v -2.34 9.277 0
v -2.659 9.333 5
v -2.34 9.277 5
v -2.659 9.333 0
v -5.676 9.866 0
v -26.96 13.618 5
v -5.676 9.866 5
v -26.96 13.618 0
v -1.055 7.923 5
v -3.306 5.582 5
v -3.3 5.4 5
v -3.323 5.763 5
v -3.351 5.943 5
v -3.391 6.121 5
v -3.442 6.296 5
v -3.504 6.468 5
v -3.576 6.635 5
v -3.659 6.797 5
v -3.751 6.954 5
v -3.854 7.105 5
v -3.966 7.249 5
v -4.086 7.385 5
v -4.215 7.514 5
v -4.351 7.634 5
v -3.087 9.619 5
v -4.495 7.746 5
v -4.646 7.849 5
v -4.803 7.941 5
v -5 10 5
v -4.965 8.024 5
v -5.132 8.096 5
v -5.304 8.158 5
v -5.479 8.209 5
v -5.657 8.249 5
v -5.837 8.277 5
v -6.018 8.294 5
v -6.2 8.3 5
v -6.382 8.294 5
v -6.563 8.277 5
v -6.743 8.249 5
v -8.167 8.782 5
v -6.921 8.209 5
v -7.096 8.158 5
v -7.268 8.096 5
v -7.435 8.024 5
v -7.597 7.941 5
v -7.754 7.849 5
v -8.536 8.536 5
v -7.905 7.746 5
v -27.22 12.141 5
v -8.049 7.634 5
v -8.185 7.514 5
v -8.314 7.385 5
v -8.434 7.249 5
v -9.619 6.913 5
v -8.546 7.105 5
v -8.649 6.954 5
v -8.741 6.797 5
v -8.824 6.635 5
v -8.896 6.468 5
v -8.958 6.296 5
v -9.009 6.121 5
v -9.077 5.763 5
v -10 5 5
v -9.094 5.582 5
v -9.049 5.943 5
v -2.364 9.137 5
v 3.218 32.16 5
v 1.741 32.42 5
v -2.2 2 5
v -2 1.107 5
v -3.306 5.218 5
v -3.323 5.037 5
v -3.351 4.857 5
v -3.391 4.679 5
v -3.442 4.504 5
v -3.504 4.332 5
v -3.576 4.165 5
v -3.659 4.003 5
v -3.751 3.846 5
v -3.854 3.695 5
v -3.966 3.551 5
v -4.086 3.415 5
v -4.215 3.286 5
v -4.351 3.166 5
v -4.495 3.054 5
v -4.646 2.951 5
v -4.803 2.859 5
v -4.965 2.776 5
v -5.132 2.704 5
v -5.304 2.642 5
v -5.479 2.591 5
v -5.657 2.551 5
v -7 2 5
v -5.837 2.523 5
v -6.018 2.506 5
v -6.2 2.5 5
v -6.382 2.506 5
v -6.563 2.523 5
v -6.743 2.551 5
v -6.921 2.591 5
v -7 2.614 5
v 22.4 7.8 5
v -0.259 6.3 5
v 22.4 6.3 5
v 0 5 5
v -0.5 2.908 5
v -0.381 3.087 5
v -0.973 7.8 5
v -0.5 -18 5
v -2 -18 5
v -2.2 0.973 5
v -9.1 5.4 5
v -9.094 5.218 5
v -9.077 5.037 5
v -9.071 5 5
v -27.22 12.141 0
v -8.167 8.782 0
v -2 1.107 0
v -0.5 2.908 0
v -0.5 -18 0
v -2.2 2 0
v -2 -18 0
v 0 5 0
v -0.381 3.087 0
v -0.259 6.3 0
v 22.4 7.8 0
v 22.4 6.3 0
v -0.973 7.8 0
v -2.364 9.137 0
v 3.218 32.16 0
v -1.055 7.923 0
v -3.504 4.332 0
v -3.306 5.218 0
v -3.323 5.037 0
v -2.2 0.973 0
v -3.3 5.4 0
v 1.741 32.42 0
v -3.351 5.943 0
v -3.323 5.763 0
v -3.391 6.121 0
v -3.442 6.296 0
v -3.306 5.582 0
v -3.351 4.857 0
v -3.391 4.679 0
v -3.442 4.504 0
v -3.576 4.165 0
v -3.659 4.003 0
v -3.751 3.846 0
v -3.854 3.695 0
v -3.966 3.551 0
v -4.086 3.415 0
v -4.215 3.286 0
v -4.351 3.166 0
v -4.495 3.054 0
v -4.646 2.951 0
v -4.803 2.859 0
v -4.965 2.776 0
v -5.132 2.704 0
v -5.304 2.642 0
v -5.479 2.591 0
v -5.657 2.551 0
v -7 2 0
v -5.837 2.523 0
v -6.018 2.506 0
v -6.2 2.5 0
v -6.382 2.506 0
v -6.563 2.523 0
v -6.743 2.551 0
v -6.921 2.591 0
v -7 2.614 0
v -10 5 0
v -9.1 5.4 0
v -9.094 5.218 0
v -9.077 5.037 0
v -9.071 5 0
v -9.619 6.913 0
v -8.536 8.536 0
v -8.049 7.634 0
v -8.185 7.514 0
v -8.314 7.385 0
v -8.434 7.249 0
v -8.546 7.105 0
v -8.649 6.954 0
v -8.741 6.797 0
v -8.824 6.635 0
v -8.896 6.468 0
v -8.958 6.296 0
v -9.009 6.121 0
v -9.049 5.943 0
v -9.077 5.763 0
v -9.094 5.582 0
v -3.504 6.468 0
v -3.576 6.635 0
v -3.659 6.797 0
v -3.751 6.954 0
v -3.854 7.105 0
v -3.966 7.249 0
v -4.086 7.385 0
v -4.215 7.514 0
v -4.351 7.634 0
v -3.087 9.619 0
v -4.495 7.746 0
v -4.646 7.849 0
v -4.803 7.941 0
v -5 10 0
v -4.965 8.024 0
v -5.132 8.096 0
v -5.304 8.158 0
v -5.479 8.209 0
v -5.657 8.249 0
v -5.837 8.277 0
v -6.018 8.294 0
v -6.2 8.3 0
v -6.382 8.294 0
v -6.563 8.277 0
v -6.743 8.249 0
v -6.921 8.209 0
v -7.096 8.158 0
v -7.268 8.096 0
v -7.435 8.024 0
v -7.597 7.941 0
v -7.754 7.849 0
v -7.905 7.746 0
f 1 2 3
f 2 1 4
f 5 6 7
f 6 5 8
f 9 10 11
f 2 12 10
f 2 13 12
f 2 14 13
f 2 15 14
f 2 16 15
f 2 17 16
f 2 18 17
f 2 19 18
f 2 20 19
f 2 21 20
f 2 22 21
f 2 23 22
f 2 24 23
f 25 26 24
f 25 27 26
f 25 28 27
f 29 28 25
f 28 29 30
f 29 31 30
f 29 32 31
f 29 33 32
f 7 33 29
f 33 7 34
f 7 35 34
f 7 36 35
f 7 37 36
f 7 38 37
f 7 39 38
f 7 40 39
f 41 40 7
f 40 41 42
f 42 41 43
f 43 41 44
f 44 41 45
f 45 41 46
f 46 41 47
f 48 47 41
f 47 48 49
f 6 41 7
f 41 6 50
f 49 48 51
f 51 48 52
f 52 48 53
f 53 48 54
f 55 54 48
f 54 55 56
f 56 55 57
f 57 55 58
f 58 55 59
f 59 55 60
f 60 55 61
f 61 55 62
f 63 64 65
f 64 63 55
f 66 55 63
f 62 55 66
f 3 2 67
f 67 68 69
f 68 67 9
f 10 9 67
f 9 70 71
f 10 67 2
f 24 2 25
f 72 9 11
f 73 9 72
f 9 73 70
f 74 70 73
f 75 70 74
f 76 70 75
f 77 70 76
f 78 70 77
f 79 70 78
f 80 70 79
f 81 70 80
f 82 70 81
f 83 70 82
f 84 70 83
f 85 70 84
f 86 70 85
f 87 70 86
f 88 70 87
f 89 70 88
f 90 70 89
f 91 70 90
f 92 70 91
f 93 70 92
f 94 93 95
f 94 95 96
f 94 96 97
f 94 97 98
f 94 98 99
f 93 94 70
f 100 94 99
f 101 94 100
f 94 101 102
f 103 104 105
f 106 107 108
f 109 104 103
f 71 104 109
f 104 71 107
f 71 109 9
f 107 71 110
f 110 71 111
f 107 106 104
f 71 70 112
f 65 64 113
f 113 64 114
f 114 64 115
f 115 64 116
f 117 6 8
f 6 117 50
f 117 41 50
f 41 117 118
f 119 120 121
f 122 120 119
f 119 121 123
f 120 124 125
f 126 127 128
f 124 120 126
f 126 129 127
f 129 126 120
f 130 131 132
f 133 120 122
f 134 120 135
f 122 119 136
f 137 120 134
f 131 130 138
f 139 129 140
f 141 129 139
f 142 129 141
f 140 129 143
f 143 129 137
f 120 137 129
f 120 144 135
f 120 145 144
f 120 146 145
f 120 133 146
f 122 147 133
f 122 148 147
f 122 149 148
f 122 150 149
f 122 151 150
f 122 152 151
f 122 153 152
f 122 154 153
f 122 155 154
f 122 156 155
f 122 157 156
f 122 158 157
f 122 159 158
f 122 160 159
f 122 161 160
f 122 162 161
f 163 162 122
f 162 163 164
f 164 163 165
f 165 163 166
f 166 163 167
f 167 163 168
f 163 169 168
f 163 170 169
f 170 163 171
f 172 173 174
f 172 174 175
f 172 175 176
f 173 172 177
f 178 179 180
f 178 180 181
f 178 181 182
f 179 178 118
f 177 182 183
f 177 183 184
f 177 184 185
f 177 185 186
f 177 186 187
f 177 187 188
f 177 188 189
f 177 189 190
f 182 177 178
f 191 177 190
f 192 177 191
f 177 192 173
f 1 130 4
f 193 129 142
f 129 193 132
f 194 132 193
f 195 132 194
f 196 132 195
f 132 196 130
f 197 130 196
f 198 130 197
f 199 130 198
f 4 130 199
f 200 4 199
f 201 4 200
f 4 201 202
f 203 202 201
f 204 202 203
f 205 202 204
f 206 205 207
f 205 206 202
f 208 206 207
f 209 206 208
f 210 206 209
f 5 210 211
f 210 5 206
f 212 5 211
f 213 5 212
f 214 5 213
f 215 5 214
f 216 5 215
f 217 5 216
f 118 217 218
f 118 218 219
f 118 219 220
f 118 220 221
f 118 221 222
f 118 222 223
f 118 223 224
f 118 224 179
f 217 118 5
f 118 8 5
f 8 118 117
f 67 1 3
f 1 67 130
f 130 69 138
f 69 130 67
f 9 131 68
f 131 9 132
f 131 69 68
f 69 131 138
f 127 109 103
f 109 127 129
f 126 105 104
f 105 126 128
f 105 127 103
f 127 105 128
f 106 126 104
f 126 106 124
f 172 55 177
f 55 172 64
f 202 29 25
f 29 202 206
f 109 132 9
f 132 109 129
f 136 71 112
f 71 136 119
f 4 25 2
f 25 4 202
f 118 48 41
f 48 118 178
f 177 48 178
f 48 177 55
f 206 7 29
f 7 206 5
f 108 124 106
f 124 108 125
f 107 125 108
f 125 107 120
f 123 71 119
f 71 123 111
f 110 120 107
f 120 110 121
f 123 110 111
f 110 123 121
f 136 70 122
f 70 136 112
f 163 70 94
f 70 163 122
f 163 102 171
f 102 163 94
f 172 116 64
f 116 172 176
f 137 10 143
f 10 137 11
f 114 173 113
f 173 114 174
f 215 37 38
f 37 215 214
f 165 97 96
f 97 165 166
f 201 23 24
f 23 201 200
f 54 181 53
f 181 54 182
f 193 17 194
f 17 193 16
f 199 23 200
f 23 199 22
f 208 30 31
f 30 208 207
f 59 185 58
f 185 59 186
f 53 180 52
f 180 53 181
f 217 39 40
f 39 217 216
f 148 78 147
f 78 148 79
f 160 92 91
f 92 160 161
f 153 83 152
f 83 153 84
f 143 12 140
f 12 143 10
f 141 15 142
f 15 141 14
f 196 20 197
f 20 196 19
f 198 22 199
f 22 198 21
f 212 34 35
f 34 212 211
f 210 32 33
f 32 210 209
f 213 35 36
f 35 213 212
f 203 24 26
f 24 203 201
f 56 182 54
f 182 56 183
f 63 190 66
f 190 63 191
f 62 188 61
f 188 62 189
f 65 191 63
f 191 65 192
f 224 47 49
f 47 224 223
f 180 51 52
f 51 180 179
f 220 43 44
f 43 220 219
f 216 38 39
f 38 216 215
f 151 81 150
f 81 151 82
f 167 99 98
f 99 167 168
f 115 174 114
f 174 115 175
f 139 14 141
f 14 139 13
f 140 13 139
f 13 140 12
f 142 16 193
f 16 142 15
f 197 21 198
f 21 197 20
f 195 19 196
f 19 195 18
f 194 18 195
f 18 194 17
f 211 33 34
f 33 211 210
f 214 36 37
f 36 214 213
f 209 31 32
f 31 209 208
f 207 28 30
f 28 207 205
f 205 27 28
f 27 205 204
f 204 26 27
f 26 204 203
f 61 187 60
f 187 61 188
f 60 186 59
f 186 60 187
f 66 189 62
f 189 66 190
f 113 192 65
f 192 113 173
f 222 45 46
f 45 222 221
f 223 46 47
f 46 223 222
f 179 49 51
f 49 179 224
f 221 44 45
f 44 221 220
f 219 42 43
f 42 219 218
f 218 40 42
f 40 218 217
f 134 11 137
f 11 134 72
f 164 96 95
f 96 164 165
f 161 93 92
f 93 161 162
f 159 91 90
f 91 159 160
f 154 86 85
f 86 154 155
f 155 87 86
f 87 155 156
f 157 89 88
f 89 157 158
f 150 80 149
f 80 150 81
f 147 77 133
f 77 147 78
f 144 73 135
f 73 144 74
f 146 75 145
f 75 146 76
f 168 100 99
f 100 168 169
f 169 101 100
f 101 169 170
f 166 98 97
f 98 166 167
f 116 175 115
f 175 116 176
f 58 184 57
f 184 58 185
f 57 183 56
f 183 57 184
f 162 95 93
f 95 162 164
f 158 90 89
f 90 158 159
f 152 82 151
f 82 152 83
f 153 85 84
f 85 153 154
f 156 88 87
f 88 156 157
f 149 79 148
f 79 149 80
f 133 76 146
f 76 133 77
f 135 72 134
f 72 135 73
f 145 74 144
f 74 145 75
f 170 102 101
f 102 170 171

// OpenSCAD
//TODO Translated into English
//include <relativity.scad>

//setup
radio_borde = 10/2;
radio_pajita = 5.8/2;
altura = 5;

/***
* Init module
***/
init();
module init(){
  varandilla();
  difference() {
    difference() {
      soporte(altura);
    }
    taladros_pagitas();
    quitar_material();
  }
}


module soporte(altura) {
  posicion_soporte = [-5, 5, 0];
  hull() {
    translate(posicion_soporte)
    cylinder(r=radio_borde, h=altura);
  }
  translate([-2, -18, 0]) {
    cube(size=[1.5, 25, 5]);
  }
}

module varandilla() {
  translate([-2.6, 7.8, 0]) {

    rotate([0, 0, 80]) {
      cube(size=[1.5, 25, 5]);
    }

    rotate([0, 0, -10]) {
      cube(size=[1.5, 25, 5]);
    }

    rotate([0, 0, -90]) {
      cube(size=[1.5, 25, 5]);
    }
  }
}

module taladros_pagitas() {
  altura_taladro = 40;
  posicion_taladro = [-6.2, 5.4, -1];

  translate(posicion_taladro)
  cylinder(r=radio_pajita, h=altura_taladro, $fn=100);
}

module quitar_material() {
  translate([-17, -2, 0])
  cube(size=[14.8, 4, 10]);
  translate([-12, -5, 0])
  cube(size=[5, 10, 10]);
}
